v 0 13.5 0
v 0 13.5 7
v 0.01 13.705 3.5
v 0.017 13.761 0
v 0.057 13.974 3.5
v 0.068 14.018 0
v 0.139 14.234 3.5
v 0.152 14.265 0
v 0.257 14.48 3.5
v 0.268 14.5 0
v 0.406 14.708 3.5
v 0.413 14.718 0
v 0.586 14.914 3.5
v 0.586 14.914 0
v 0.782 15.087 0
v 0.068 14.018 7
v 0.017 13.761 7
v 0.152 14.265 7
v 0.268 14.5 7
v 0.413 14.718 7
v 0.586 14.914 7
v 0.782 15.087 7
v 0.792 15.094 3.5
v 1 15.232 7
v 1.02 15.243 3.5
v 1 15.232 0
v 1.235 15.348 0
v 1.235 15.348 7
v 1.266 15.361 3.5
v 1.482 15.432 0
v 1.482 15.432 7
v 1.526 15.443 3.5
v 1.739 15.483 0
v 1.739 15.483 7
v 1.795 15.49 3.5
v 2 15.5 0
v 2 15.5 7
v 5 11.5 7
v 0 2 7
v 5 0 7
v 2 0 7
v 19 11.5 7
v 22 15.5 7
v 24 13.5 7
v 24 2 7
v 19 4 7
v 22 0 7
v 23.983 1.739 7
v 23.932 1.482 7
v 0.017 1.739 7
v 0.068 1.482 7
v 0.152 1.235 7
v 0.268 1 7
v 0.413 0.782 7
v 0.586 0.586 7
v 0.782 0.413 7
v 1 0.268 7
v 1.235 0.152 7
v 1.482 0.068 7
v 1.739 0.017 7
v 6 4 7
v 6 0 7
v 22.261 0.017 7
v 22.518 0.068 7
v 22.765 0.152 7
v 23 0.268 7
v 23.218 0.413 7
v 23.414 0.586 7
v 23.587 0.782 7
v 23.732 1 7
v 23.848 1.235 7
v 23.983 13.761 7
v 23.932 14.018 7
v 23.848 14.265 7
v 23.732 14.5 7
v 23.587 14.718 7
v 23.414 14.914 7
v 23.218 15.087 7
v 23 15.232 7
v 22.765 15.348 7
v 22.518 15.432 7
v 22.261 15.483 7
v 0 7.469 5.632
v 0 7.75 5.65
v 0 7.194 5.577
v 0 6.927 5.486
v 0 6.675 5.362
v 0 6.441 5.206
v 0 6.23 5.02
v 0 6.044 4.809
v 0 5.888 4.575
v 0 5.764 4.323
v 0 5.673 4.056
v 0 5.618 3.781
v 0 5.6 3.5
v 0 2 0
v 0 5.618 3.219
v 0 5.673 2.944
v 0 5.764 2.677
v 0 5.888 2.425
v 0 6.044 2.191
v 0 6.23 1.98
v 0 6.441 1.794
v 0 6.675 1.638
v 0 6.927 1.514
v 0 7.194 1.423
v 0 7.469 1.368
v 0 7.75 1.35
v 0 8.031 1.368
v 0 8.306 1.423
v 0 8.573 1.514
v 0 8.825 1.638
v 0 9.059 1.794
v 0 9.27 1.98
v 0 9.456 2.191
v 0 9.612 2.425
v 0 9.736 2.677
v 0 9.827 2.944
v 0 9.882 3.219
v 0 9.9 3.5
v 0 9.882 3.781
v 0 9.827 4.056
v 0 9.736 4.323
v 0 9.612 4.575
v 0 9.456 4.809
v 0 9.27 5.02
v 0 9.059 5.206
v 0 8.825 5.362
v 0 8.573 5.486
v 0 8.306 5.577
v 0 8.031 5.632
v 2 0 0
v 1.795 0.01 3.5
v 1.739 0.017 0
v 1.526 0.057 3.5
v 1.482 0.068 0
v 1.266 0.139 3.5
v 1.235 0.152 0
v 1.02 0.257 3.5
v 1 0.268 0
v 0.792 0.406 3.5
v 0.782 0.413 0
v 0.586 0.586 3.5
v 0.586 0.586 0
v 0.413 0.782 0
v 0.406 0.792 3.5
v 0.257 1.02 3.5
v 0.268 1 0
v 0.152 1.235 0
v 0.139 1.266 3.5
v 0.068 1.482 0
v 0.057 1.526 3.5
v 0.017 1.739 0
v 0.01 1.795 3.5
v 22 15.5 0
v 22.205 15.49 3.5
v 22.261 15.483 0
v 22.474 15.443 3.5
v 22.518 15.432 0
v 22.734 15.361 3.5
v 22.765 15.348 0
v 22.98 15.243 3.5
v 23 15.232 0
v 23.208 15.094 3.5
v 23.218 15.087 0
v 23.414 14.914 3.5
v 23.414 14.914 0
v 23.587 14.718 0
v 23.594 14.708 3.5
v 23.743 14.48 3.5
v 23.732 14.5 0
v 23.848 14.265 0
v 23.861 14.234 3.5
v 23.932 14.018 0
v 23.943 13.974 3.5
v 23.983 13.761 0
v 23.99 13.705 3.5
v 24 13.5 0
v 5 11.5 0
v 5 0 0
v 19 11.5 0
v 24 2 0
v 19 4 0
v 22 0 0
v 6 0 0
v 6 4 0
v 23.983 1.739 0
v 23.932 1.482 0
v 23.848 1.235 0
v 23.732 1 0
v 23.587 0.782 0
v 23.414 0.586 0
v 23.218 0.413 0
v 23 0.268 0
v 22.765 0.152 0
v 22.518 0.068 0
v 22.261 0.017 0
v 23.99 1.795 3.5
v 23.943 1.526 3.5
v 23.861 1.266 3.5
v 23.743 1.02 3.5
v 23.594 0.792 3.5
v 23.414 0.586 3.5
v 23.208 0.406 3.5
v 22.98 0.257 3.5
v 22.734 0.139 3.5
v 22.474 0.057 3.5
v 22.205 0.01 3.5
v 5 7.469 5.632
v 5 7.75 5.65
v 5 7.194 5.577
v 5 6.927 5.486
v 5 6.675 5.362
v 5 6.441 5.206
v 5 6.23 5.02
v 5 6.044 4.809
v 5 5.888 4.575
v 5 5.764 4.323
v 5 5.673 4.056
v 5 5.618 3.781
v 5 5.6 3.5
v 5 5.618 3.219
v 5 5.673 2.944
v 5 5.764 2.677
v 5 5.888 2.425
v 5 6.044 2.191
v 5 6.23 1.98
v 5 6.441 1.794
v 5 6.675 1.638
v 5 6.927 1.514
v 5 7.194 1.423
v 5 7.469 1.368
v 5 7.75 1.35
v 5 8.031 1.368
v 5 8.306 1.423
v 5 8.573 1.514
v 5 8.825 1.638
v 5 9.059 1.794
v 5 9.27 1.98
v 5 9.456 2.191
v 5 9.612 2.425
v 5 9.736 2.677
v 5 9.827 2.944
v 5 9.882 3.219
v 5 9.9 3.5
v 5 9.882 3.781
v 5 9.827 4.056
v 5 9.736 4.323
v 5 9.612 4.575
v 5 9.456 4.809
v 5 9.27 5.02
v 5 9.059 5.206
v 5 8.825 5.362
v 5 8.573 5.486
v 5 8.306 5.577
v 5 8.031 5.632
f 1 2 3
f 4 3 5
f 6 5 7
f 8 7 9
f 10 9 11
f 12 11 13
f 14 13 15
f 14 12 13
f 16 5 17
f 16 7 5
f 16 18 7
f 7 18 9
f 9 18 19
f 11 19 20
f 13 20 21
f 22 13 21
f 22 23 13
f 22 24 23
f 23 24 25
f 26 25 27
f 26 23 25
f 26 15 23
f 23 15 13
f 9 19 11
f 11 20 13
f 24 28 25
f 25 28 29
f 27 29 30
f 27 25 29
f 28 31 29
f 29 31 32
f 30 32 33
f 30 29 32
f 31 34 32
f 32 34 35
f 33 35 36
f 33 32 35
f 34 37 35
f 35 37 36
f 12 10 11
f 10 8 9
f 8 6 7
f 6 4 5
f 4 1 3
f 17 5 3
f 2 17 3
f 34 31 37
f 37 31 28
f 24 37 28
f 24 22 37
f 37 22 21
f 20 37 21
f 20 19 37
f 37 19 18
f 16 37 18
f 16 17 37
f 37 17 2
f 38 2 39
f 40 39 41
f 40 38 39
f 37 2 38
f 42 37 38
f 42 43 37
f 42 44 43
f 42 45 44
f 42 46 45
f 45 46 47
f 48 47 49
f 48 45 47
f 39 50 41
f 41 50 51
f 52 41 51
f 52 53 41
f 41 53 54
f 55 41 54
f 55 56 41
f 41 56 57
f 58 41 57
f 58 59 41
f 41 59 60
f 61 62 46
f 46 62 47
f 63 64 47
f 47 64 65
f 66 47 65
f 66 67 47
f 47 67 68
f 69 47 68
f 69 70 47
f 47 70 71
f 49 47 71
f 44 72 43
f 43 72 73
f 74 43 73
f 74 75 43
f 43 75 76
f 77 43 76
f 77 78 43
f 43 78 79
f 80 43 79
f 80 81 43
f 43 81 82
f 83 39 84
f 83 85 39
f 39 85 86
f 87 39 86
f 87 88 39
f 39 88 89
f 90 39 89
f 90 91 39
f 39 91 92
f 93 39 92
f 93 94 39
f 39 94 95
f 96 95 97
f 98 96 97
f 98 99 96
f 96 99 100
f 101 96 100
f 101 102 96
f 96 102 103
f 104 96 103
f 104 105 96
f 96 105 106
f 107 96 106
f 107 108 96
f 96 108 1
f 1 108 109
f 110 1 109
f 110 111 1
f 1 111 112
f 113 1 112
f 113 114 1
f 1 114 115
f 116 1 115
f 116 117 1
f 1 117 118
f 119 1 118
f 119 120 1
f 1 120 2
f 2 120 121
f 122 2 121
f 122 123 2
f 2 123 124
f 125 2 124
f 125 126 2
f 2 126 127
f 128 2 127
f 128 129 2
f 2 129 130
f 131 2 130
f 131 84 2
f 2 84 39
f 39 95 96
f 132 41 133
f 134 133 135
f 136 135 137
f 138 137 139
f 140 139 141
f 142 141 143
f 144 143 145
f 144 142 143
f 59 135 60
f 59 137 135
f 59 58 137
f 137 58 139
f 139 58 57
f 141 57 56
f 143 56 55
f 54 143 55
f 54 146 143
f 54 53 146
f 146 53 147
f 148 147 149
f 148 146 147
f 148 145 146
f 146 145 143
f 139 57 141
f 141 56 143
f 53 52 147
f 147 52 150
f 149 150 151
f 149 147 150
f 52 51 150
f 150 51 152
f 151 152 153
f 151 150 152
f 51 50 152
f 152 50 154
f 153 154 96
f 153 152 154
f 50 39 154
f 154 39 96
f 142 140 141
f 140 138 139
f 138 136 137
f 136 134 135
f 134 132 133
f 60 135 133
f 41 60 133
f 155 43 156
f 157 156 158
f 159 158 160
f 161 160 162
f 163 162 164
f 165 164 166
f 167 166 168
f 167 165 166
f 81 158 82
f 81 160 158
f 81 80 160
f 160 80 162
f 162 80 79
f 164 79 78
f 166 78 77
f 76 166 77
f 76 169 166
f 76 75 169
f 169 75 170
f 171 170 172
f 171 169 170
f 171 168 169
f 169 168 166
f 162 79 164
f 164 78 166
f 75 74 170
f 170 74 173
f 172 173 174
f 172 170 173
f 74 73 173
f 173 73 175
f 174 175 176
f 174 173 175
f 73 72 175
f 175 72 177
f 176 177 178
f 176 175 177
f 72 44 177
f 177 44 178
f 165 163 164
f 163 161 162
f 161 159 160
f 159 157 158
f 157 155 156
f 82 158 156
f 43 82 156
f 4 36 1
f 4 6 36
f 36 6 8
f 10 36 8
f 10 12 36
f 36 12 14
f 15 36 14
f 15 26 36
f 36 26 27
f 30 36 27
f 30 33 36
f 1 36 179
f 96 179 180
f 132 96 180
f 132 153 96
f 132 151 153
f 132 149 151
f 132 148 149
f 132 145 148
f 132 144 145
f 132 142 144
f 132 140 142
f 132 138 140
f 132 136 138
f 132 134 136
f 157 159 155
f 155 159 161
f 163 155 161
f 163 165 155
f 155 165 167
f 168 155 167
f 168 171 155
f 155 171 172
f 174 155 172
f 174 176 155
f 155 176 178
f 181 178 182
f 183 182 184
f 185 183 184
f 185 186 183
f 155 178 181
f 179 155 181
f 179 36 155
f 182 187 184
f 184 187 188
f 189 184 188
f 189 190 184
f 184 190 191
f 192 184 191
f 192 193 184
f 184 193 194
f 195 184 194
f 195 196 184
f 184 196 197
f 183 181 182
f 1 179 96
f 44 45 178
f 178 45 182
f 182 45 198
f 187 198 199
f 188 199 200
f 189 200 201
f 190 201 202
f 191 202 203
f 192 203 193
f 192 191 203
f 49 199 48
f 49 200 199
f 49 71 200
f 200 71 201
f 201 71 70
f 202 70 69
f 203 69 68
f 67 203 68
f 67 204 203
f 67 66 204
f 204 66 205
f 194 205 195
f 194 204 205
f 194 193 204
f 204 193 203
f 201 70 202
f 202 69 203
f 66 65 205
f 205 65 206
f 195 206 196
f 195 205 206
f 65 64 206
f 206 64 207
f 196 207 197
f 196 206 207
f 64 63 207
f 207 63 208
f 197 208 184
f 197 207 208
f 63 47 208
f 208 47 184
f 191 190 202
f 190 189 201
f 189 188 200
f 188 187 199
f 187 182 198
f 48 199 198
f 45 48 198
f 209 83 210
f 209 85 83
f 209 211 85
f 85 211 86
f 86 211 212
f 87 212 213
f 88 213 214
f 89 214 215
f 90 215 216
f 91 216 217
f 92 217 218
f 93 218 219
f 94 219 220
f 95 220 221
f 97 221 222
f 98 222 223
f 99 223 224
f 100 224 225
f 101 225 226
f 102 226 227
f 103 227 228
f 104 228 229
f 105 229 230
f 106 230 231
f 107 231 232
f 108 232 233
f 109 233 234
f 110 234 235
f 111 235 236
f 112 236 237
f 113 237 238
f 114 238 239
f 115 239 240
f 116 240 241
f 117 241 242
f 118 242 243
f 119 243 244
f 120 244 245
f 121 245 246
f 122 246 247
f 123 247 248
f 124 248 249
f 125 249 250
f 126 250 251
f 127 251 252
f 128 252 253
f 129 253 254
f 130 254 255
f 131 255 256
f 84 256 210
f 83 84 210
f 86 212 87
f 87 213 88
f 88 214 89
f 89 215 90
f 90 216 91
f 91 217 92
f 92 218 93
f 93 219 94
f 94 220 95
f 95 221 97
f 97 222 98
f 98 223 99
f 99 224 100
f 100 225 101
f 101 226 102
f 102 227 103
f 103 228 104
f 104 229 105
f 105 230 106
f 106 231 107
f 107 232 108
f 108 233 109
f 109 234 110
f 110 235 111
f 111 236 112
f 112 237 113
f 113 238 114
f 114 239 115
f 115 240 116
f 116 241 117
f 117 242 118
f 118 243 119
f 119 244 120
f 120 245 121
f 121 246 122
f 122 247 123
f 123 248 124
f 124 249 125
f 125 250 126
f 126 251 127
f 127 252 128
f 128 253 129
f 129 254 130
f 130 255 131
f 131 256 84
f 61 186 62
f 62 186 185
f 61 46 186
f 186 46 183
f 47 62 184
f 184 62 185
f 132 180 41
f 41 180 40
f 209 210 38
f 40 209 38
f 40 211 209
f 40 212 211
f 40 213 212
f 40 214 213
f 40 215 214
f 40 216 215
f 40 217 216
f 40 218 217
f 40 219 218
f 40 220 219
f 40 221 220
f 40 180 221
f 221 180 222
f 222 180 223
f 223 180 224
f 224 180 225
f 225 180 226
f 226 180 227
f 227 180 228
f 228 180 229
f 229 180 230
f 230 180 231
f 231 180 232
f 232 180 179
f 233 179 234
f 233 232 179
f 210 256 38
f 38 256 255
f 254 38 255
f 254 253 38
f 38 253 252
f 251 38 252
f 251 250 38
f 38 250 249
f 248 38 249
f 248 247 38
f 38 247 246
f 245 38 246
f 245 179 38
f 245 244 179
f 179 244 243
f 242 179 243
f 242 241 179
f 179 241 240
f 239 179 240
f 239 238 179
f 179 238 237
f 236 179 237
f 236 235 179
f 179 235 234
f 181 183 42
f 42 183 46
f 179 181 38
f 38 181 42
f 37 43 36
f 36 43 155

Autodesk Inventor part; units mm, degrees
ref_plane "YZ Plane" through (0, 0, 0) normal (1, 0, 0) x (0, 1, 0)
ref_plane "XZ Plane" through (0, 0, 0) normal (0, 1, 0) x (-1, 0, 0)
ref_plane "XY Plane" through (0, 0, 0) normal (0, 0, 1) x (1, 0, 0)
sketch "Sketch1" plane through (0, 0, 0) normal (0, 0, 1) x (1, 0, 0)
  line L0 (0, 0) -> (24, 0)
  line L1 (24, 0) -> (24, 15.5)
  line L2 (24, 15.5) -> (0, 15.5)
  line L3 (0, 15.5) -> (0, 0)
  dimension "d0" = 24
  dimension "d1" = 15.5
extrude "Extrusion1" add sketch "Sketch1" along normal blind 5
sketch "Sketch7" plane through (0, 0, 5) normal (0, 0, 1) x (1, 0, 0)
  line L0 (24, 15.5) -> (0, 15.5) projected
  line L1 (0, 15.5) -> (0, 0) projected
  line L2 (5, 11.5) -> (19, 11.5)
  line L3 (19, 11.5) -> (19, 4)
  line L4 (19, 4) -> (5, 4)
  line L5 (5, 4) -> (5, 11.5)
  point P0 (12, 11.5)
  point P1 (12, 15.5)
  point P2 (5, 7.75)
  point P3 (0, 7.75)
  dimension "d21" = 14
  dimension "d22" = 7.5
extrude "Extrusion7" cut sketch "Sketch7" against normal blind 5
sketch "Sketch8" plane through (0, 0, 0) normal (0, -1, 0) x (1, 0, 0)
  line L0 (0, 0) -> (24, 0) projected
  line L1 (5, 5) -> (5, 0) construction
  line L2 (5, 5) -> (6, 5)
  line L3 (6, 5) -> (6, 0)
  line L4 (6, 0) -> (5, 0)
  line L5 (5, 0) -> (5, 5)
  line L6 (0, 0) -> (0, 5) projected
  dimension "d34" = 5
extrude "Extrusion8" cut sketch "Sketch8" against normal blind 5
sketch "Sketch9" plane through (0, 0, 5) normal (0, 0, 1) x (1, 0, 0)
  line L0 (6, 4) -> (6, 0) projected
  line L1 (6, 0) -> (24, 0) projected
  line L2 (24, 0) -> (24, 15.5) projected
  line L3 (24, 15.5) -> (0, 15.5) projected
  line L4 (0, 15.5) -> (0, 0) projected
  line L5 (0, 0) -> (5, 0) projected
  line L6 (5, 0) -> (5, 11.5) projected
  line L7 (5, 11.5) -> (19, 11.5) projected
  line L8 (19, 11.5) -> (19, 4) projected
  line L9 (19, 4) -> (6, 4) projected
extrude "Extrusion9" add sketch "Sketch9" along normal blind 2
sketch "Sketch10" plane through (0, 0, 0) normal (-1, 0, 0) x (0, 0, 1)
  circle A0 centre (3.5, 7.75) radius 2.15
  dimension "d30" = 4.3
extrude "Extrusion10" cut sketch "Sketch10" against normal blind 5
fillet "Fillet2" radius 2 4 edges at (24, 0, 3.5) (24, 15.5, 3.5) (0, 0, 3.5) (0, 15.5, 3.5)
properties part number "CounterWeightHook"
